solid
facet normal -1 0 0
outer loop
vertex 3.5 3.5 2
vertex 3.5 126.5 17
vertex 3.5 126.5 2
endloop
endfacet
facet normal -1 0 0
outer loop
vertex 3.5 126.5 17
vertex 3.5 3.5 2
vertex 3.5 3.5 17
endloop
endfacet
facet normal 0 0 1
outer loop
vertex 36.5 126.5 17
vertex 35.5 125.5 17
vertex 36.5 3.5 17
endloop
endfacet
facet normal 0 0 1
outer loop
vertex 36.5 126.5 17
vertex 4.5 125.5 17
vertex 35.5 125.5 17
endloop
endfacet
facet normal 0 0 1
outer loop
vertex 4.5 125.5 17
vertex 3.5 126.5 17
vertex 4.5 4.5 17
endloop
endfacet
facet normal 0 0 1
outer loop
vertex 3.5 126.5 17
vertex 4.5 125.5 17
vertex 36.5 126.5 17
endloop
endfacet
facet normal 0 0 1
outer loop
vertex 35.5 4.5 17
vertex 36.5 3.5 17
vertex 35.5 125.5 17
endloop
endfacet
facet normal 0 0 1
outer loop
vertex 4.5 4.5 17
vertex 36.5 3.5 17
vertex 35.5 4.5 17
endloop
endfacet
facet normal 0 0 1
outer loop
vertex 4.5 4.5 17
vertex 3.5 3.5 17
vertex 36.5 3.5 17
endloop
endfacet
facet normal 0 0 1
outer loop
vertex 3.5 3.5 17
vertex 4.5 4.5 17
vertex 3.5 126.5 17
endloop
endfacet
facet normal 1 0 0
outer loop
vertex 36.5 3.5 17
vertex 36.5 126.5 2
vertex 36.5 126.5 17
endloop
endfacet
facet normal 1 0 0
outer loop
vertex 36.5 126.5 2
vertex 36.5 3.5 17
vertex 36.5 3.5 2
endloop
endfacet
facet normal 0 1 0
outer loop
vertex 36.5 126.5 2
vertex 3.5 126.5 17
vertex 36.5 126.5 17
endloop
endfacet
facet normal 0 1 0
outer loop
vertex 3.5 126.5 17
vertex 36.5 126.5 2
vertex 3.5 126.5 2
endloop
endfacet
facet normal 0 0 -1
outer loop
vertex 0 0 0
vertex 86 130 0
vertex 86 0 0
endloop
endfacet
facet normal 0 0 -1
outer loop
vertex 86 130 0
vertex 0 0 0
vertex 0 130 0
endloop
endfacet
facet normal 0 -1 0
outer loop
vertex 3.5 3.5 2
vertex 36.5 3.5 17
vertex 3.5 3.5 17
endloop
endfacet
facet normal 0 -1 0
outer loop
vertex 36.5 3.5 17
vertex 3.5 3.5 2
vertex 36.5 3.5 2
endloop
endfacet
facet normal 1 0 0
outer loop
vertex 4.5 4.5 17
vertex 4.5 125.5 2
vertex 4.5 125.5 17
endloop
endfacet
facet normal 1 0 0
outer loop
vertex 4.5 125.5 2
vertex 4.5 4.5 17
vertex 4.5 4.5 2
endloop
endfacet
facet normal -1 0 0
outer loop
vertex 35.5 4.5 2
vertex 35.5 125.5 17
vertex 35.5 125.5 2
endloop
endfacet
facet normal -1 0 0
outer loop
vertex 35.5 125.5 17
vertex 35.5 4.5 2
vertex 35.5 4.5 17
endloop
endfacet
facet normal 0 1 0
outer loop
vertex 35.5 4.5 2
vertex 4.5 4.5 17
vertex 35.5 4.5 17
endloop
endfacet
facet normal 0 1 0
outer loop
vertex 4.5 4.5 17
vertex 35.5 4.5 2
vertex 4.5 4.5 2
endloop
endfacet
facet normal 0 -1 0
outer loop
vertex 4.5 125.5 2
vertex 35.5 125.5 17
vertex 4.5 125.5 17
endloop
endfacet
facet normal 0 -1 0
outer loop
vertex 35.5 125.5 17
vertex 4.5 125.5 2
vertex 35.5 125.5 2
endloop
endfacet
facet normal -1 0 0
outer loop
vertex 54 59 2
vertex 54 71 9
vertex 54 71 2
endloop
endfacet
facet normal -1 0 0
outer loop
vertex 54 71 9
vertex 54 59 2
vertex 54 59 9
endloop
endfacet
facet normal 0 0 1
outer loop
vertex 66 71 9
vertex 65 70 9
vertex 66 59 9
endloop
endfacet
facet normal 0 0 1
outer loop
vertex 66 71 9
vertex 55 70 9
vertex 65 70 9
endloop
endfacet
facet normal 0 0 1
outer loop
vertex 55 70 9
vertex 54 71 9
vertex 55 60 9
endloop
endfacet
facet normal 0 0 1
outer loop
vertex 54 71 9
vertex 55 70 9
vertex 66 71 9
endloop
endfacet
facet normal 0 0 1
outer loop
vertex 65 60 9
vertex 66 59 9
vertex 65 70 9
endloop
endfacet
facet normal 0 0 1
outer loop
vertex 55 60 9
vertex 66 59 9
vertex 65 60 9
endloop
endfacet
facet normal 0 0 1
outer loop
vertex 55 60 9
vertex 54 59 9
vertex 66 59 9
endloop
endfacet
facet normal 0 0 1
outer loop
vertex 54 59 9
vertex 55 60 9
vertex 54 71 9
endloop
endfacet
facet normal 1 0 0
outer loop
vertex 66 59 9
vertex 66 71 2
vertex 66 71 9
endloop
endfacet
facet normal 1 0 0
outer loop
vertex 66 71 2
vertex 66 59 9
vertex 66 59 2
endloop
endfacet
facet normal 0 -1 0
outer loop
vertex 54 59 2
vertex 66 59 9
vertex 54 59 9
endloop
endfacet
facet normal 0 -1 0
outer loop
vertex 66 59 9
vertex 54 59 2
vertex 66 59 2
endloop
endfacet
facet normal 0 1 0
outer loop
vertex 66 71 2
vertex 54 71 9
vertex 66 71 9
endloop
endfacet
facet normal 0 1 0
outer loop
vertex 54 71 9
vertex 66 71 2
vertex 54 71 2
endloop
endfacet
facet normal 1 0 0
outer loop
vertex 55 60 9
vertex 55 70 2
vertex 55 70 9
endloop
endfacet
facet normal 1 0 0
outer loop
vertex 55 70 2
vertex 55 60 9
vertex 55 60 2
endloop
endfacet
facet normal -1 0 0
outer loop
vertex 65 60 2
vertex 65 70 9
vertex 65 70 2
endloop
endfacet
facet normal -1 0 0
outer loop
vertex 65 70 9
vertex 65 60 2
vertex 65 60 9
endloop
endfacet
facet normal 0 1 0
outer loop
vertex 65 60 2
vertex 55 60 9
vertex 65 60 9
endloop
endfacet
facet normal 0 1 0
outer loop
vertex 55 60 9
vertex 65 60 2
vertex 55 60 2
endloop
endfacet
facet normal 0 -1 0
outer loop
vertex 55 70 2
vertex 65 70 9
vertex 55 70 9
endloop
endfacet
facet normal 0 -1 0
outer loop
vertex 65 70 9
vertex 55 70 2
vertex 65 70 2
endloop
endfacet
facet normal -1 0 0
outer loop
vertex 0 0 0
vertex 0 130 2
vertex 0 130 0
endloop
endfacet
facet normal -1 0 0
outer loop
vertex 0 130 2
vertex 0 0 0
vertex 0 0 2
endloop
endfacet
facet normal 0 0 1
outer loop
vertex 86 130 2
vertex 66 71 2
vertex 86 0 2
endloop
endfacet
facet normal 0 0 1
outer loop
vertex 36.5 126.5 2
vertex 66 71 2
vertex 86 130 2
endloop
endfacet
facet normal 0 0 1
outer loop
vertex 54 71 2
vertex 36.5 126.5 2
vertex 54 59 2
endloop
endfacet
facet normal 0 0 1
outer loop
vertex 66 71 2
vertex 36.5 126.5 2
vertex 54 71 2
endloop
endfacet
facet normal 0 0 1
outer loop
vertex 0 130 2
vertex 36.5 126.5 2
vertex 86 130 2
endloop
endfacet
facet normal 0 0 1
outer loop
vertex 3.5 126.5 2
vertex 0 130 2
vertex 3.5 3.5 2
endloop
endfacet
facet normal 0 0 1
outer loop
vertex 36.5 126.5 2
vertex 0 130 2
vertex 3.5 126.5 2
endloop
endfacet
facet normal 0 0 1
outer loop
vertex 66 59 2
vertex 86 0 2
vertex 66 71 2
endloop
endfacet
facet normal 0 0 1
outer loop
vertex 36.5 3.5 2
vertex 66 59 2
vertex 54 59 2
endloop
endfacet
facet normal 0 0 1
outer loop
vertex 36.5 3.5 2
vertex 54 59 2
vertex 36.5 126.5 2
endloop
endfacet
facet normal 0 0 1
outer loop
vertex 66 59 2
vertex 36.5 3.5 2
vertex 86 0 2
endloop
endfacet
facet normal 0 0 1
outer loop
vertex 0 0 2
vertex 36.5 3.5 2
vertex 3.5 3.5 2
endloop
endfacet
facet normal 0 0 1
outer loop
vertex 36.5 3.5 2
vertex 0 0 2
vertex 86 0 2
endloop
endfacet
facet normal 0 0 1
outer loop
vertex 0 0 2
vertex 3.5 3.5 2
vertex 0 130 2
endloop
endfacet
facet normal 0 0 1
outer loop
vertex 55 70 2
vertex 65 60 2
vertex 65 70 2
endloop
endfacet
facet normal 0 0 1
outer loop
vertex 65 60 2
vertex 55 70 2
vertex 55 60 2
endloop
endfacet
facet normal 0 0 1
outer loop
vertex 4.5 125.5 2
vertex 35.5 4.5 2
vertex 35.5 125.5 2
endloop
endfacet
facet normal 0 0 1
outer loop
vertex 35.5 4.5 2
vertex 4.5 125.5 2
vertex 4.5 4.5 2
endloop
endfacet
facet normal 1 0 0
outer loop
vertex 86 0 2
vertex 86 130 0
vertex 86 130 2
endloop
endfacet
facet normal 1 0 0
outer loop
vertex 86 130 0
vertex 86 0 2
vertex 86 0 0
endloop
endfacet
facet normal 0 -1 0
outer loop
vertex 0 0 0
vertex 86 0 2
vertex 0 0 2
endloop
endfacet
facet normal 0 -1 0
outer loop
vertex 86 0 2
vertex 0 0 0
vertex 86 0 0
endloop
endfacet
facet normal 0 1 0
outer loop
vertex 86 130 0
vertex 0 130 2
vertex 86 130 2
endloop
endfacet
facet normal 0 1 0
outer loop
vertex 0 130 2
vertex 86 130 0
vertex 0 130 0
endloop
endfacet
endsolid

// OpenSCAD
e = 0.01;

x1 = 20;
x2 = 65;
x3 = 60;
x4 = 31;
x5 = 10;

y1 = 130;
y2 = 121;

t3 = 2;

z1 = 7 + t3;
z2 = 15 + t3;

t1 = 1;
t2 = 1;
r = y1 / 2;

h1 = 20;


// cut out holes for prototyping
difference() {

// The main object
union() {
cube([x3 + x5/2 + t1 + h1, y1, t3]);

//translate([x2, y1/2, 0]) cylinder(t3, r, r);

x5a = (x5 + 2 * t1)/2;
translate([x3 - x5a, y1/2 - x5a, 0])
difference() {
   cube([2 * x5a, 2 * x5a, z1]);
   translate([t1, t1, 0]) cube([x5, x5, z1+e]);
}

translate([x1 - (x4/2 + t2), y1/2 - y2/2 - t2, 0])
difference() {
    cube([x4 + 2 * t2, y2 + 2 * t2, z2]);
    translate([t2, t2, 0]) cube([x4, y2, z2 + e]);
}
}

// The holes
/*
translate([x1 - x4/2, (y1 - y2)/2, -e])
    cube([x4, y2, t3 + 2*e]);

translate([x1 + x4/2 + t2 + 2, 2, -e])
    cube([x3 - x5/2 - t1 - 2 - x1 - x4/2 - t2 - 2, y1 - 4, t3 + 2 * e]);

translate([90, 40, -e])
cylinder(t3 + 2 * e, 20, 20);

translate([90, 90, -e])
cylinder(t3 + 2 * e, 20, 20);

translate([105, 65, -e])
cylinder(t3 + 2 * e, 20, 20);
*/
}
